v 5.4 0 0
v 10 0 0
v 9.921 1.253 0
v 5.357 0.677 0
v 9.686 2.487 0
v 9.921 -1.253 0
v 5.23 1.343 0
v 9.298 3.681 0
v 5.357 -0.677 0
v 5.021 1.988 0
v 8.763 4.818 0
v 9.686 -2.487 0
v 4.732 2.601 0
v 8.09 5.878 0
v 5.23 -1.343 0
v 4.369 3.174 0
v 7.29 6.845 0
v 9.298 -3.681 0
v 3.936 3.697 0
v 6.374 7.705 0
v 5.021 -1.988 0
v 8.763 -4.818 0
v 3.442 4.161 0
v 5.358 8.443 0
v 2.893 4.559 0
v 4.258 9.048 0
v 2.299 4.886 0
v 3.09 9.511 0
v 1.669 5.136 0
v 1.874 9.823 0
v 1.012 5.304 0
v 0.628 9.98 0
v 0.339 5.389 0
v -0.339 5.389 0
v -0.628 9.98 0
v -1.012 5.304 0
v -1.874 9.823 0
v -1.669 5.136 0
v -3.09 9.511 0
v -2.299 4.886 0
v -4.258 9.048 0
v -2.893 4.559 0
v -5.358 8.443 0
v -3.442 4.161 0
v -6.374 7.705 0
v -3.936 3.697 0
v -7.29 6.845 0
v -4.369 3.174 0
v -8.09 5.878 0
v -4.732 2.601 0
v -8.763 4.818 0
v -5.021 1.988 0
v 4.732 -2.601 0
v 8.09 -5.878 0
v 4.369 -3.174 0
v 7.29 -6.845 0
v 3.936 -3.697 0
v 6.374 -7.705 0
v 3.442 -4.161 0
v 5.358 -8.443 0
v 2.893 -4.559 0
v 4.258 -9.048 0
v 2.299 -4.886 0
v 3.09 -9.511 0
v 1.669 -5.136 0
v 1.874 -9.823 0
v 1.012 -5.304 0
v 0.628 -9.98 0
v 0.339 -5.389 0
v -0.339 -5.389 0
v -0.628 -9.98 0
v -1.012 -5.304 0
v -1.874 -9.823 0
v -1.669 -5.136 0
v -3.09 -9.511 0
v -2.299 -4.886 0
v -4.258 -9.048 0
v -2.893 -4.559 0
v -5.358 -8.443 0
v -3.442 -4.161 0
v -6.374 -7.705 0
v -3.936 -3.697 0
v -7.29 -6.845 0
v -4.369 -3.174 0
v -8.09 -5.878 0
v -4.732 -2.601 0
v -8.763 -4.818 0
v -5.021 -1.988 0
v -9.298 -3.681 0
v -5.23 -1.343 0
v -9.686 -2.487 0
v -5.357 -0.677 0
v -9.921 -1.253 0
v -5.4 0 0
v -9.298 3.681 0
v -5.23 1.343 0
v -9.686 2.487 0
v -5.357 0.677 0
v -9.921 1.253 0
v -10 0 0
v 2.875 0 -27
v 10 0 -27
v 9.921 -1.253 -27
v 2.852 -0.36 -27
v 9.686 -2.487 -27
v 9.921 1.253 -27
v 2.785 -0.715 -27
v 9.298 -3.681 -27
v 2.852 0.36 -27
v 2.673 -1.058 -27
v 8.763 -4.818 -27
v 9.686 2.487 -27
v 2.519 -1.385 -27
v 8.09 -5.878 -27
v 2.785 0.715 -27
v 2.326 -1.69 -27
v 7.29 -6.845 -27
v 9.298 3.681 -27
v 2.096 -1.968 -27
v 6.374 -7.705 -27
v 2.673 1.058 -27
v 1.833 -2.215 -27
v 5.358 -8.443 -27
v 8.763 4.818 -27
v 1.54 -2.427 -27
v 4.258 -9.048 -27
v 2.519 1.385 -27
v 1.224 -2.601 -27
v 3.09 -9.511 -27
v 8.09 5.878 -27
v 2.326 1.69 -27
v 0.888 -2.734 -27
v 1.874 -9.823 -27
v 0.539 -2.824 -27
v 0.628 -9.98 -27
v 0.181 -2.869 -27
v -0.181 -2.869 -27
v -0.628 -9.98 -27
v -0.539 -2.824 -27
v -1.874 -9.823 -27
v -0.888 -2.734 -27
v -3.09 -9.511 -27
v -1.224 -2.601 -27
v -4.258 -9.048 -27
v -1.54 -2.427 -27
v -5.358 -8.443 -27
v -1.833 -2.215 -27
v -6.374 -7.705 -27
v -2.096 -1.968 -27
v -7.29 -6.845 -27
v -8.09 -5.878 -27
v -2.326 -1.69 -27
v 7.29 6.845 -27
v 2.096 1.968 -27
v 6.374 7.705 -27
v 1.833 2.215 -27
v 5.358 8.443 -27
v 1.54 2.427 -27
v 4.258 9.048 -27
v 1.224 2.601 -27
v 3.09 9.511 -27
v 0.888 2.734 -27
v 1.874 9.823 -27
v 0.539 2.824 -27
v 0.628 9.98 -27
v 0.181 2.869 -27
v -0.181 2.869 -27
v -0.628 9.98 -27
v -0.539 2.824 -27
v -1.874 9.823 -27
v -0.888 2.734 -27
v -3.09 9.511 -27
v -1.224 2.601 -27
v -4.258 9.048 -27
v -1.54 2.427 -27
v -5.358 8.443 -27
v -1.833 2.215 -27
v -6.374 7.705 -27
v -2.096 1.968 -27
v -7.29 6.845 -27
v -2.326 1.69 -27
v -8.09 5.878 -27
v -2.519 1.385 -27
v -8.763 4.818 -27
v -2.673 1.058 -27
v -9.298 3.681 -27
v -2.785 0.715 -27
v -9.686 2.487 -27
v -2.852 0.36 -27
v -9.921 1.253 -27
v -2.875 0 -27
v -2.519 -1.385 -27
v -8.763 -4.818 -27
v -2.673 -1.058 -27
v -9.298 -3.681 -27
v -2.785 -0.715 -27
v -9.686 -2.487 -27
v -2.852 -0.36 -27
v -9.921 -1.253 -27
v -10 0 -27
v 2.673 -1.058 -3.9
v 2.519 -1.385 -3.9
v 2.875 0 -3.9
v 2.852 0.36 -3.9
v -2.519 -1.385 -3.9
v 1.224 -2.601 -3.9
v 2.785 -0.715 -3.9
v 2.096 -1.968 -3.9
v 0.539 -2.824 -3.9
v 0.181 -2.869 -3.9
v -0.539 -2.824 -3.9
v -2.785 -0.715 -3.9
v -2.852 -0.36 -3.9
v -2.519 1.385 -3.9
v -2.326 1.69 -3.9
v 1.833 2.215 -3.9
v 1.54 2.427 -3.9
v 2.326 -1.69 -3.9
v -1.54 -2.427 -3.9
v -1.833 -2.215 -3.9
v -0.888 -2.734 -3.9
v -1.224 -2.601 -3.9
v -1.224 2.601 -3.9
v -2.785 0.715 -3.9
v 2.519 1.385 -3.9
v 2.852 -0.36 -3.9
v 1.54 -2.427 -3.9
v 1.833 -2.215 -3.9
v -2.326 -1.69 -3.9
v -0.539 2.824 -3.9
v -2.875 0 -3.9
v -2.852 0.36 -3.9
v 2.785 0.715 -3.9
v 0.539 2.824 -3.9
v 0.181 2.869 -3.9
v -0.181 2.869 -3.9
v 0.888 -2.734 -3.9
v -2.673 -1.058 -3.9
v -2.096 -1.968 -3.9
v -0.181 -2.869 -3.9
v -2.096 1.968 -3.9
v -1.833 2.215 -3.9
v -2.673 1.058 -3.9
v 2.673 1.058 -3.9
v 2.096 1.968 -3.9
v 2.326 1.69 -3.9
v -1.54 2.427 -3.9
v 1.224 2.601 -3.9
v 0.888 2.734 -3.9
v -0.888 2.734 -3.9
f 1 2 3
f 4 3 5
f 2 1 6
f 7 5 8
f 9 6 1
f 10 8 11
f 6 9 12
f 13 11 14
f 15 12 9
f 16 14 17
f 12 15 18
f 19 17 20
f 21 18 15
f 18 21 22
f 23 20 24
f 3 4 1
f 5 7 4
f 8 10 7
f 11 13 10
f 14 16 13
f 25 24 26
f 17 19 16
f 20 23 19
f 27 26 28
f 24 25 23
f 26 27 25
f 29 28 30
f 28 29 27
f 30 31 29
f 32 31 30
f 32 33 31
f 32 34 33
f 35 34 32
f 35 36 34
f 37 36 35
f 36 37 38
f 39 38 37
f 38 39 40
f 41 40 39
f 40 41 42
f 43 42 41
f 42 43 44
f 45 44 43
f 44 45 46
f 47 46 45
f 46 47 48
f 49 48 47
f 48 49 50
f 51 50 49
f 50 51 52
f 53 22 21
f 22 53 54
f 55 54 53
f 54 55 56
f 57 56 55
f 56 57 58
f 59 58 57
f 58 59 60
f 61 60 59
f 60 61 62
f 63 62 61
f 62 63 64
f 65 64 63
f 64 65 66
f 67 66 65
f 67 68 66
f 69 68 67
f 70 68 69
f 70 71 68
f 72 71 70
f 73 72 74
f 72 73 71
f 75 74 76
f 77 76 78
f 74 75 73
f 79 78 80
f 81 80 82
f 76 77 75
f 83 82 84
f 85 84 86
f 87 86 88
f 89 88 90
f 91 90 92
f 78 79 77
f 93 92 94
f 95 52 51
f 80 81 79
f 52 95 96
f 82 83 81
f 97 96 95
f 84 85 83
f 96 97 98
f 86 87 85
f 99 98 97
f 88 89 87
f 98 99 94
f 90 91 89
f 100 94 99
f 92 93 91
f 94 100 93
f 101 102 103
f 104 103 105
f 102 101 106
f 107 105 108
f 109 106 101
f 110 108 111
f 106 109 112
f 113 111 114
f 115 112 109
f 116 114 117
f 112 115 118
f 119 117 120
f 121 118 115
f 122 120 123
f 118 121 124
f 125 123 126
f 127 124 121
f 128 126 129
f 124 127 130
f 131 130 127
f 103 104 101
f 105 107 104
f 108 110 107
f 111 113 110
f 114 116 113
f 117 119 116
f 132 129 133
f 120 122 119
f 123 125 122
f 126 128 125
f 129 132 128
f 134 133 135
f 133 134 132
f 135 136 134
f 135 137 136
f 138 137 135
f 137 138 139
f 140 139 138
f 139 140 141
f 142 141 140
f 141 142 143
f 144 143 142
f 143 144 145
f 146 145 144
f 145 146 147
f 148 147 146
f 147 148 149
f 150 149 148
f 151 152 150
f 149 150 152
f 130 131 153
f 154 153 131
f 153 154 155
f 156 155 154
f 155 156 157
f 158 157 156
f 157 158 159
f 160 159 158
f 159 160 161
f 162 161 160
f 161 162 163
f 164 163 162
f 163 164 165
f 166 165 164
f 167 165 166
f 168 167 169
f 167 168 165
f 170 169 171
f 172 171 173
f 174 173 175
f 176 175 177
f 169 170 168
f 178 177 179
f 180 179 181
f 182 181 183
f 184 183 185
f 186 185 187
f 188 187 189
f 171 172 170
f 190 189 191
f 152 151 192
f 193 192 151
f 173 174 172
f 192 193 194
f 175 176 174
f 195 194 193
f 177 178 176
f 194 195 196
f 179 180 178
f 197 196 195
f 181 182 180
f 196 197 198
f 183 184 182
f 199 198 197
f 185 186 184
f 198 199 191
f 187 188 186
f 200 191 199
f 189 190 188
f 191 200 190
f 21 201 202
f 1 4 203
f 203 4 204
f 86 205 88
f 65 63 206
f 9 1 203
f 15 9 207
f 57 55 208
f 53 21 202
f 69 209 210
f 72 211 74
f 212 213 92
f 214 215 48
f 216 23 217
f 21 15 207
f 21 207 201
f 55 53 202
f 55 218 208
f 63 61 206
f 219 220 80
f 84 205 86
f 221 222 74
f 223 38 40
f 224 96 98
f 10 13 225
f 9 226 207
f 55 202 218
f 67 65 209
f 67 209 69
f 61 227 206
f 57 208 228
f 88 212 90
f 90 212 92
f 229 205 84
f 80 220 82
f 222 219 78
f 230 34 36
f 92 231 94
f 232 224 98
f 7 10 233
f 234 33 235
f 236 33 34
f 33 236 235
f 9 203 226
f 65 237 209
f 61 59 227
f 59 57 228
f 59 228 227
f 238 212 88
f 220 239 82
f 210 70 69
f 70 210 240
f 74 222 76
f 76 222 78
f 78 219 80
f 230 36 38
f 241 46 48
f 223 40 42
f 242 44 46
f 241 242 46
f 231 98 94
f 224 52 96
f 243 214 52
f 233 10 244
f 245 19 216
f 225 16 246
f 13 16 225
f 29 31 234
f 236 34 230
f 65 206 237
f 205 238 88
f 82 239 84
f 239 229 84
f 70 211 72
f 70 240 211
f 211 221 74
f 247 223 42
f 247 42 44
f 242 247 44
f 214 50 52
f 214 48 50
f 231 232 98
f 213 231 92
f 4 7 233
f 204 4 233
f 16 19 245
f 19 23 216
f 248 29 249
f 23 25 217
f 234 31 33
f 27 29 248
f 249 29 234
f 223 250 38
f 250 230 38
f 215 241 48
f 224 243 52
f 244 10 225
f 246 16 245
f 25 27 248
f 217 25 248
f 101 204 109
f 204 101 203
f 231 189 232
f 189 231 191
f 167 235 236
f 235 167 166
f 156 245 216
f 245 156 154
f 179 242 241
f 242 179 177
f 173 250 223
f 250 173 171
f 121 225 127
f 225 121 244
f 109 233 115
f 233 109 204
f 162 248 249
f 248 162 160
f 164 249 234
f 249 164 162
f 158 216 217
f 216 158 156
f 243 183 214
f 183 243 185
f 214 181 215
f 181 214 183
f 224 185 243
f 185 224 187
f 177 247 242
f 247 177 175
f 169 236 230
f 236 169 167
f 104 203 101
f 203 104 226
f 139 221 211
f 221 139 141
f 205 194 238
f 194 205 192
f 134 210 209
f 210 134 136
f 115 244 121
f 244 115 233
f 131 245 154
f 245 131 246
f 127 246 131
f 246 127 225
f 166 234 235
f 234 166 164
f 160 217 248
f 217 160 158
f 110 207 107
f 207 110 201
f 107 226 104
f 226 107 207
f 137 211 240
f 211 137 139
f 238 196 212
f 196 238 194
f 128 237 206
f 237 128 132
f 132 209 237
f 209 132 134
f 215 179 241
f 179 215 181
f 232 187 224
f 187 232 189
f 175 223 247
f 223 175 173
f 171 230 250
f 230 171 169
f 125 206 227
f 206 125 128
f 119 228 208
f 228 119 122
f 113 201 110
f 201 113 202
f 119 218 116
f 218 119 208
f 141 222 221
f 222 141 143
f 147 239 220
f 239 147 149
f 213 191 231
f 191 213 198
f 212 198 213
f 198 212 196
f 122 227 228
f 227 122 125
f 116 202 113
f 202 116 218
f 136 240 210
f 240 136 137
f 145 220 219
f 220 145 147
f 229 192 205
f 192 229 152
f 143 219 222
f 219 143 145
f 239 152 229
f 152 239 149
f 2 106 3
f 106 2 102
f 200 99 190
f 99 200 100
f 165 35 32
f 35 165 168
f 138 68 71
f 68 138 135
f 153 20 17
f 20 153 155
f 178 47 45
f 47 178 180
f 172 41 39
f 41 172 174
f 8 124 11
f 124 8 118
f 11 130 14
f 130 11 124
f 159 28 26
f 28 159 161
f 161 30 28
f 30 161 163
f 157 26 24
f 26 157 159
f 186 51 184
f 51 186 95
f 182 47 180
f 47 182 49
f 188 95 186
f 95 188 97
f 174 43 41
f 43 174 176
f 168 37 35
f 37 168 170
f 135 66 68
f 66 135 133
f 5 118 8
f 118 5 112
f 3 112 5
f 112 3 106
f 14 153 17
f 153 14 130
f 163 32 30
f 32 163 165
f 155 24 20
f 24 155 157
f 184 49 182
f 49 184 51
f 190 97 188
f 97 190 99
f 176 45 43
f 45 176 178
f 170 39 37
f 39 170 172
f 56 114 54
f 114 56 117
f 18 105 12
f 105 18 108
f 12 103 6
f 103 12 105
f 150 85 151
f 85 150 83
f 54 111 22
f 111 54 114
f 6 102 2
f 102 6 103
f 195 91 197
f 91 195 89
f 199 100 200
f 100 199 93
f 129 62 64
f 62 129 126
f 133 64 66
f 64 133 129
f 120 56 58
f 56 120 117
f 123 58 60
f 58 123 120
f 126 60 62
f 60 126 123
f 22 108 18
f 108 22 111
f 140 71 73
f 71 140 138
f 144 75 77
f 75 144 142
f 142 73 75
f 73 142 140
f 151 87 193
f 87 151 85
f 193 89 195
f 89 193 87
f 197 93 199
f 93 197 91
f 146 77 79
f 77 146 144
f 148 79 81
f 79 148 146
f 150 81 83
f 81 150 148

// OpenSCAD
$fn = 50;


difference() {
	union() {
		translate(v = [0, 0, -27.0000000000]) {
			cylinder(h = 27, r = 10.0000000000);
		}
		cylinder(h = 0, r = 20.0000000000);
	}
	union() {
		translate(v = [0, 0, 0]) {
			rotate(a = [0, 0, 0]) {
				difference() {
					union() {
						#translate(v = [0, 0, -27.0000000000]) {
							cylinder(h = 27, r = 2.6000000000);
						}
						#translate(v = [0, 0, -3.9000000000]) {
							cylinder(h = 3.9000000000, r1 = 2.8750000000, r2 = 5.4000000000);
						}
						#translate(v = [0, 0, -27.0000000000]) {
							cylinder(h = 27, r = 2.8750000000);
						}
						#translate(v = [0, 0, -27.0000000000]) {
							cylinder(h = 27, r = 2.6000000000);
						}
					}
					union();
				}
			}
		}
	}
}
